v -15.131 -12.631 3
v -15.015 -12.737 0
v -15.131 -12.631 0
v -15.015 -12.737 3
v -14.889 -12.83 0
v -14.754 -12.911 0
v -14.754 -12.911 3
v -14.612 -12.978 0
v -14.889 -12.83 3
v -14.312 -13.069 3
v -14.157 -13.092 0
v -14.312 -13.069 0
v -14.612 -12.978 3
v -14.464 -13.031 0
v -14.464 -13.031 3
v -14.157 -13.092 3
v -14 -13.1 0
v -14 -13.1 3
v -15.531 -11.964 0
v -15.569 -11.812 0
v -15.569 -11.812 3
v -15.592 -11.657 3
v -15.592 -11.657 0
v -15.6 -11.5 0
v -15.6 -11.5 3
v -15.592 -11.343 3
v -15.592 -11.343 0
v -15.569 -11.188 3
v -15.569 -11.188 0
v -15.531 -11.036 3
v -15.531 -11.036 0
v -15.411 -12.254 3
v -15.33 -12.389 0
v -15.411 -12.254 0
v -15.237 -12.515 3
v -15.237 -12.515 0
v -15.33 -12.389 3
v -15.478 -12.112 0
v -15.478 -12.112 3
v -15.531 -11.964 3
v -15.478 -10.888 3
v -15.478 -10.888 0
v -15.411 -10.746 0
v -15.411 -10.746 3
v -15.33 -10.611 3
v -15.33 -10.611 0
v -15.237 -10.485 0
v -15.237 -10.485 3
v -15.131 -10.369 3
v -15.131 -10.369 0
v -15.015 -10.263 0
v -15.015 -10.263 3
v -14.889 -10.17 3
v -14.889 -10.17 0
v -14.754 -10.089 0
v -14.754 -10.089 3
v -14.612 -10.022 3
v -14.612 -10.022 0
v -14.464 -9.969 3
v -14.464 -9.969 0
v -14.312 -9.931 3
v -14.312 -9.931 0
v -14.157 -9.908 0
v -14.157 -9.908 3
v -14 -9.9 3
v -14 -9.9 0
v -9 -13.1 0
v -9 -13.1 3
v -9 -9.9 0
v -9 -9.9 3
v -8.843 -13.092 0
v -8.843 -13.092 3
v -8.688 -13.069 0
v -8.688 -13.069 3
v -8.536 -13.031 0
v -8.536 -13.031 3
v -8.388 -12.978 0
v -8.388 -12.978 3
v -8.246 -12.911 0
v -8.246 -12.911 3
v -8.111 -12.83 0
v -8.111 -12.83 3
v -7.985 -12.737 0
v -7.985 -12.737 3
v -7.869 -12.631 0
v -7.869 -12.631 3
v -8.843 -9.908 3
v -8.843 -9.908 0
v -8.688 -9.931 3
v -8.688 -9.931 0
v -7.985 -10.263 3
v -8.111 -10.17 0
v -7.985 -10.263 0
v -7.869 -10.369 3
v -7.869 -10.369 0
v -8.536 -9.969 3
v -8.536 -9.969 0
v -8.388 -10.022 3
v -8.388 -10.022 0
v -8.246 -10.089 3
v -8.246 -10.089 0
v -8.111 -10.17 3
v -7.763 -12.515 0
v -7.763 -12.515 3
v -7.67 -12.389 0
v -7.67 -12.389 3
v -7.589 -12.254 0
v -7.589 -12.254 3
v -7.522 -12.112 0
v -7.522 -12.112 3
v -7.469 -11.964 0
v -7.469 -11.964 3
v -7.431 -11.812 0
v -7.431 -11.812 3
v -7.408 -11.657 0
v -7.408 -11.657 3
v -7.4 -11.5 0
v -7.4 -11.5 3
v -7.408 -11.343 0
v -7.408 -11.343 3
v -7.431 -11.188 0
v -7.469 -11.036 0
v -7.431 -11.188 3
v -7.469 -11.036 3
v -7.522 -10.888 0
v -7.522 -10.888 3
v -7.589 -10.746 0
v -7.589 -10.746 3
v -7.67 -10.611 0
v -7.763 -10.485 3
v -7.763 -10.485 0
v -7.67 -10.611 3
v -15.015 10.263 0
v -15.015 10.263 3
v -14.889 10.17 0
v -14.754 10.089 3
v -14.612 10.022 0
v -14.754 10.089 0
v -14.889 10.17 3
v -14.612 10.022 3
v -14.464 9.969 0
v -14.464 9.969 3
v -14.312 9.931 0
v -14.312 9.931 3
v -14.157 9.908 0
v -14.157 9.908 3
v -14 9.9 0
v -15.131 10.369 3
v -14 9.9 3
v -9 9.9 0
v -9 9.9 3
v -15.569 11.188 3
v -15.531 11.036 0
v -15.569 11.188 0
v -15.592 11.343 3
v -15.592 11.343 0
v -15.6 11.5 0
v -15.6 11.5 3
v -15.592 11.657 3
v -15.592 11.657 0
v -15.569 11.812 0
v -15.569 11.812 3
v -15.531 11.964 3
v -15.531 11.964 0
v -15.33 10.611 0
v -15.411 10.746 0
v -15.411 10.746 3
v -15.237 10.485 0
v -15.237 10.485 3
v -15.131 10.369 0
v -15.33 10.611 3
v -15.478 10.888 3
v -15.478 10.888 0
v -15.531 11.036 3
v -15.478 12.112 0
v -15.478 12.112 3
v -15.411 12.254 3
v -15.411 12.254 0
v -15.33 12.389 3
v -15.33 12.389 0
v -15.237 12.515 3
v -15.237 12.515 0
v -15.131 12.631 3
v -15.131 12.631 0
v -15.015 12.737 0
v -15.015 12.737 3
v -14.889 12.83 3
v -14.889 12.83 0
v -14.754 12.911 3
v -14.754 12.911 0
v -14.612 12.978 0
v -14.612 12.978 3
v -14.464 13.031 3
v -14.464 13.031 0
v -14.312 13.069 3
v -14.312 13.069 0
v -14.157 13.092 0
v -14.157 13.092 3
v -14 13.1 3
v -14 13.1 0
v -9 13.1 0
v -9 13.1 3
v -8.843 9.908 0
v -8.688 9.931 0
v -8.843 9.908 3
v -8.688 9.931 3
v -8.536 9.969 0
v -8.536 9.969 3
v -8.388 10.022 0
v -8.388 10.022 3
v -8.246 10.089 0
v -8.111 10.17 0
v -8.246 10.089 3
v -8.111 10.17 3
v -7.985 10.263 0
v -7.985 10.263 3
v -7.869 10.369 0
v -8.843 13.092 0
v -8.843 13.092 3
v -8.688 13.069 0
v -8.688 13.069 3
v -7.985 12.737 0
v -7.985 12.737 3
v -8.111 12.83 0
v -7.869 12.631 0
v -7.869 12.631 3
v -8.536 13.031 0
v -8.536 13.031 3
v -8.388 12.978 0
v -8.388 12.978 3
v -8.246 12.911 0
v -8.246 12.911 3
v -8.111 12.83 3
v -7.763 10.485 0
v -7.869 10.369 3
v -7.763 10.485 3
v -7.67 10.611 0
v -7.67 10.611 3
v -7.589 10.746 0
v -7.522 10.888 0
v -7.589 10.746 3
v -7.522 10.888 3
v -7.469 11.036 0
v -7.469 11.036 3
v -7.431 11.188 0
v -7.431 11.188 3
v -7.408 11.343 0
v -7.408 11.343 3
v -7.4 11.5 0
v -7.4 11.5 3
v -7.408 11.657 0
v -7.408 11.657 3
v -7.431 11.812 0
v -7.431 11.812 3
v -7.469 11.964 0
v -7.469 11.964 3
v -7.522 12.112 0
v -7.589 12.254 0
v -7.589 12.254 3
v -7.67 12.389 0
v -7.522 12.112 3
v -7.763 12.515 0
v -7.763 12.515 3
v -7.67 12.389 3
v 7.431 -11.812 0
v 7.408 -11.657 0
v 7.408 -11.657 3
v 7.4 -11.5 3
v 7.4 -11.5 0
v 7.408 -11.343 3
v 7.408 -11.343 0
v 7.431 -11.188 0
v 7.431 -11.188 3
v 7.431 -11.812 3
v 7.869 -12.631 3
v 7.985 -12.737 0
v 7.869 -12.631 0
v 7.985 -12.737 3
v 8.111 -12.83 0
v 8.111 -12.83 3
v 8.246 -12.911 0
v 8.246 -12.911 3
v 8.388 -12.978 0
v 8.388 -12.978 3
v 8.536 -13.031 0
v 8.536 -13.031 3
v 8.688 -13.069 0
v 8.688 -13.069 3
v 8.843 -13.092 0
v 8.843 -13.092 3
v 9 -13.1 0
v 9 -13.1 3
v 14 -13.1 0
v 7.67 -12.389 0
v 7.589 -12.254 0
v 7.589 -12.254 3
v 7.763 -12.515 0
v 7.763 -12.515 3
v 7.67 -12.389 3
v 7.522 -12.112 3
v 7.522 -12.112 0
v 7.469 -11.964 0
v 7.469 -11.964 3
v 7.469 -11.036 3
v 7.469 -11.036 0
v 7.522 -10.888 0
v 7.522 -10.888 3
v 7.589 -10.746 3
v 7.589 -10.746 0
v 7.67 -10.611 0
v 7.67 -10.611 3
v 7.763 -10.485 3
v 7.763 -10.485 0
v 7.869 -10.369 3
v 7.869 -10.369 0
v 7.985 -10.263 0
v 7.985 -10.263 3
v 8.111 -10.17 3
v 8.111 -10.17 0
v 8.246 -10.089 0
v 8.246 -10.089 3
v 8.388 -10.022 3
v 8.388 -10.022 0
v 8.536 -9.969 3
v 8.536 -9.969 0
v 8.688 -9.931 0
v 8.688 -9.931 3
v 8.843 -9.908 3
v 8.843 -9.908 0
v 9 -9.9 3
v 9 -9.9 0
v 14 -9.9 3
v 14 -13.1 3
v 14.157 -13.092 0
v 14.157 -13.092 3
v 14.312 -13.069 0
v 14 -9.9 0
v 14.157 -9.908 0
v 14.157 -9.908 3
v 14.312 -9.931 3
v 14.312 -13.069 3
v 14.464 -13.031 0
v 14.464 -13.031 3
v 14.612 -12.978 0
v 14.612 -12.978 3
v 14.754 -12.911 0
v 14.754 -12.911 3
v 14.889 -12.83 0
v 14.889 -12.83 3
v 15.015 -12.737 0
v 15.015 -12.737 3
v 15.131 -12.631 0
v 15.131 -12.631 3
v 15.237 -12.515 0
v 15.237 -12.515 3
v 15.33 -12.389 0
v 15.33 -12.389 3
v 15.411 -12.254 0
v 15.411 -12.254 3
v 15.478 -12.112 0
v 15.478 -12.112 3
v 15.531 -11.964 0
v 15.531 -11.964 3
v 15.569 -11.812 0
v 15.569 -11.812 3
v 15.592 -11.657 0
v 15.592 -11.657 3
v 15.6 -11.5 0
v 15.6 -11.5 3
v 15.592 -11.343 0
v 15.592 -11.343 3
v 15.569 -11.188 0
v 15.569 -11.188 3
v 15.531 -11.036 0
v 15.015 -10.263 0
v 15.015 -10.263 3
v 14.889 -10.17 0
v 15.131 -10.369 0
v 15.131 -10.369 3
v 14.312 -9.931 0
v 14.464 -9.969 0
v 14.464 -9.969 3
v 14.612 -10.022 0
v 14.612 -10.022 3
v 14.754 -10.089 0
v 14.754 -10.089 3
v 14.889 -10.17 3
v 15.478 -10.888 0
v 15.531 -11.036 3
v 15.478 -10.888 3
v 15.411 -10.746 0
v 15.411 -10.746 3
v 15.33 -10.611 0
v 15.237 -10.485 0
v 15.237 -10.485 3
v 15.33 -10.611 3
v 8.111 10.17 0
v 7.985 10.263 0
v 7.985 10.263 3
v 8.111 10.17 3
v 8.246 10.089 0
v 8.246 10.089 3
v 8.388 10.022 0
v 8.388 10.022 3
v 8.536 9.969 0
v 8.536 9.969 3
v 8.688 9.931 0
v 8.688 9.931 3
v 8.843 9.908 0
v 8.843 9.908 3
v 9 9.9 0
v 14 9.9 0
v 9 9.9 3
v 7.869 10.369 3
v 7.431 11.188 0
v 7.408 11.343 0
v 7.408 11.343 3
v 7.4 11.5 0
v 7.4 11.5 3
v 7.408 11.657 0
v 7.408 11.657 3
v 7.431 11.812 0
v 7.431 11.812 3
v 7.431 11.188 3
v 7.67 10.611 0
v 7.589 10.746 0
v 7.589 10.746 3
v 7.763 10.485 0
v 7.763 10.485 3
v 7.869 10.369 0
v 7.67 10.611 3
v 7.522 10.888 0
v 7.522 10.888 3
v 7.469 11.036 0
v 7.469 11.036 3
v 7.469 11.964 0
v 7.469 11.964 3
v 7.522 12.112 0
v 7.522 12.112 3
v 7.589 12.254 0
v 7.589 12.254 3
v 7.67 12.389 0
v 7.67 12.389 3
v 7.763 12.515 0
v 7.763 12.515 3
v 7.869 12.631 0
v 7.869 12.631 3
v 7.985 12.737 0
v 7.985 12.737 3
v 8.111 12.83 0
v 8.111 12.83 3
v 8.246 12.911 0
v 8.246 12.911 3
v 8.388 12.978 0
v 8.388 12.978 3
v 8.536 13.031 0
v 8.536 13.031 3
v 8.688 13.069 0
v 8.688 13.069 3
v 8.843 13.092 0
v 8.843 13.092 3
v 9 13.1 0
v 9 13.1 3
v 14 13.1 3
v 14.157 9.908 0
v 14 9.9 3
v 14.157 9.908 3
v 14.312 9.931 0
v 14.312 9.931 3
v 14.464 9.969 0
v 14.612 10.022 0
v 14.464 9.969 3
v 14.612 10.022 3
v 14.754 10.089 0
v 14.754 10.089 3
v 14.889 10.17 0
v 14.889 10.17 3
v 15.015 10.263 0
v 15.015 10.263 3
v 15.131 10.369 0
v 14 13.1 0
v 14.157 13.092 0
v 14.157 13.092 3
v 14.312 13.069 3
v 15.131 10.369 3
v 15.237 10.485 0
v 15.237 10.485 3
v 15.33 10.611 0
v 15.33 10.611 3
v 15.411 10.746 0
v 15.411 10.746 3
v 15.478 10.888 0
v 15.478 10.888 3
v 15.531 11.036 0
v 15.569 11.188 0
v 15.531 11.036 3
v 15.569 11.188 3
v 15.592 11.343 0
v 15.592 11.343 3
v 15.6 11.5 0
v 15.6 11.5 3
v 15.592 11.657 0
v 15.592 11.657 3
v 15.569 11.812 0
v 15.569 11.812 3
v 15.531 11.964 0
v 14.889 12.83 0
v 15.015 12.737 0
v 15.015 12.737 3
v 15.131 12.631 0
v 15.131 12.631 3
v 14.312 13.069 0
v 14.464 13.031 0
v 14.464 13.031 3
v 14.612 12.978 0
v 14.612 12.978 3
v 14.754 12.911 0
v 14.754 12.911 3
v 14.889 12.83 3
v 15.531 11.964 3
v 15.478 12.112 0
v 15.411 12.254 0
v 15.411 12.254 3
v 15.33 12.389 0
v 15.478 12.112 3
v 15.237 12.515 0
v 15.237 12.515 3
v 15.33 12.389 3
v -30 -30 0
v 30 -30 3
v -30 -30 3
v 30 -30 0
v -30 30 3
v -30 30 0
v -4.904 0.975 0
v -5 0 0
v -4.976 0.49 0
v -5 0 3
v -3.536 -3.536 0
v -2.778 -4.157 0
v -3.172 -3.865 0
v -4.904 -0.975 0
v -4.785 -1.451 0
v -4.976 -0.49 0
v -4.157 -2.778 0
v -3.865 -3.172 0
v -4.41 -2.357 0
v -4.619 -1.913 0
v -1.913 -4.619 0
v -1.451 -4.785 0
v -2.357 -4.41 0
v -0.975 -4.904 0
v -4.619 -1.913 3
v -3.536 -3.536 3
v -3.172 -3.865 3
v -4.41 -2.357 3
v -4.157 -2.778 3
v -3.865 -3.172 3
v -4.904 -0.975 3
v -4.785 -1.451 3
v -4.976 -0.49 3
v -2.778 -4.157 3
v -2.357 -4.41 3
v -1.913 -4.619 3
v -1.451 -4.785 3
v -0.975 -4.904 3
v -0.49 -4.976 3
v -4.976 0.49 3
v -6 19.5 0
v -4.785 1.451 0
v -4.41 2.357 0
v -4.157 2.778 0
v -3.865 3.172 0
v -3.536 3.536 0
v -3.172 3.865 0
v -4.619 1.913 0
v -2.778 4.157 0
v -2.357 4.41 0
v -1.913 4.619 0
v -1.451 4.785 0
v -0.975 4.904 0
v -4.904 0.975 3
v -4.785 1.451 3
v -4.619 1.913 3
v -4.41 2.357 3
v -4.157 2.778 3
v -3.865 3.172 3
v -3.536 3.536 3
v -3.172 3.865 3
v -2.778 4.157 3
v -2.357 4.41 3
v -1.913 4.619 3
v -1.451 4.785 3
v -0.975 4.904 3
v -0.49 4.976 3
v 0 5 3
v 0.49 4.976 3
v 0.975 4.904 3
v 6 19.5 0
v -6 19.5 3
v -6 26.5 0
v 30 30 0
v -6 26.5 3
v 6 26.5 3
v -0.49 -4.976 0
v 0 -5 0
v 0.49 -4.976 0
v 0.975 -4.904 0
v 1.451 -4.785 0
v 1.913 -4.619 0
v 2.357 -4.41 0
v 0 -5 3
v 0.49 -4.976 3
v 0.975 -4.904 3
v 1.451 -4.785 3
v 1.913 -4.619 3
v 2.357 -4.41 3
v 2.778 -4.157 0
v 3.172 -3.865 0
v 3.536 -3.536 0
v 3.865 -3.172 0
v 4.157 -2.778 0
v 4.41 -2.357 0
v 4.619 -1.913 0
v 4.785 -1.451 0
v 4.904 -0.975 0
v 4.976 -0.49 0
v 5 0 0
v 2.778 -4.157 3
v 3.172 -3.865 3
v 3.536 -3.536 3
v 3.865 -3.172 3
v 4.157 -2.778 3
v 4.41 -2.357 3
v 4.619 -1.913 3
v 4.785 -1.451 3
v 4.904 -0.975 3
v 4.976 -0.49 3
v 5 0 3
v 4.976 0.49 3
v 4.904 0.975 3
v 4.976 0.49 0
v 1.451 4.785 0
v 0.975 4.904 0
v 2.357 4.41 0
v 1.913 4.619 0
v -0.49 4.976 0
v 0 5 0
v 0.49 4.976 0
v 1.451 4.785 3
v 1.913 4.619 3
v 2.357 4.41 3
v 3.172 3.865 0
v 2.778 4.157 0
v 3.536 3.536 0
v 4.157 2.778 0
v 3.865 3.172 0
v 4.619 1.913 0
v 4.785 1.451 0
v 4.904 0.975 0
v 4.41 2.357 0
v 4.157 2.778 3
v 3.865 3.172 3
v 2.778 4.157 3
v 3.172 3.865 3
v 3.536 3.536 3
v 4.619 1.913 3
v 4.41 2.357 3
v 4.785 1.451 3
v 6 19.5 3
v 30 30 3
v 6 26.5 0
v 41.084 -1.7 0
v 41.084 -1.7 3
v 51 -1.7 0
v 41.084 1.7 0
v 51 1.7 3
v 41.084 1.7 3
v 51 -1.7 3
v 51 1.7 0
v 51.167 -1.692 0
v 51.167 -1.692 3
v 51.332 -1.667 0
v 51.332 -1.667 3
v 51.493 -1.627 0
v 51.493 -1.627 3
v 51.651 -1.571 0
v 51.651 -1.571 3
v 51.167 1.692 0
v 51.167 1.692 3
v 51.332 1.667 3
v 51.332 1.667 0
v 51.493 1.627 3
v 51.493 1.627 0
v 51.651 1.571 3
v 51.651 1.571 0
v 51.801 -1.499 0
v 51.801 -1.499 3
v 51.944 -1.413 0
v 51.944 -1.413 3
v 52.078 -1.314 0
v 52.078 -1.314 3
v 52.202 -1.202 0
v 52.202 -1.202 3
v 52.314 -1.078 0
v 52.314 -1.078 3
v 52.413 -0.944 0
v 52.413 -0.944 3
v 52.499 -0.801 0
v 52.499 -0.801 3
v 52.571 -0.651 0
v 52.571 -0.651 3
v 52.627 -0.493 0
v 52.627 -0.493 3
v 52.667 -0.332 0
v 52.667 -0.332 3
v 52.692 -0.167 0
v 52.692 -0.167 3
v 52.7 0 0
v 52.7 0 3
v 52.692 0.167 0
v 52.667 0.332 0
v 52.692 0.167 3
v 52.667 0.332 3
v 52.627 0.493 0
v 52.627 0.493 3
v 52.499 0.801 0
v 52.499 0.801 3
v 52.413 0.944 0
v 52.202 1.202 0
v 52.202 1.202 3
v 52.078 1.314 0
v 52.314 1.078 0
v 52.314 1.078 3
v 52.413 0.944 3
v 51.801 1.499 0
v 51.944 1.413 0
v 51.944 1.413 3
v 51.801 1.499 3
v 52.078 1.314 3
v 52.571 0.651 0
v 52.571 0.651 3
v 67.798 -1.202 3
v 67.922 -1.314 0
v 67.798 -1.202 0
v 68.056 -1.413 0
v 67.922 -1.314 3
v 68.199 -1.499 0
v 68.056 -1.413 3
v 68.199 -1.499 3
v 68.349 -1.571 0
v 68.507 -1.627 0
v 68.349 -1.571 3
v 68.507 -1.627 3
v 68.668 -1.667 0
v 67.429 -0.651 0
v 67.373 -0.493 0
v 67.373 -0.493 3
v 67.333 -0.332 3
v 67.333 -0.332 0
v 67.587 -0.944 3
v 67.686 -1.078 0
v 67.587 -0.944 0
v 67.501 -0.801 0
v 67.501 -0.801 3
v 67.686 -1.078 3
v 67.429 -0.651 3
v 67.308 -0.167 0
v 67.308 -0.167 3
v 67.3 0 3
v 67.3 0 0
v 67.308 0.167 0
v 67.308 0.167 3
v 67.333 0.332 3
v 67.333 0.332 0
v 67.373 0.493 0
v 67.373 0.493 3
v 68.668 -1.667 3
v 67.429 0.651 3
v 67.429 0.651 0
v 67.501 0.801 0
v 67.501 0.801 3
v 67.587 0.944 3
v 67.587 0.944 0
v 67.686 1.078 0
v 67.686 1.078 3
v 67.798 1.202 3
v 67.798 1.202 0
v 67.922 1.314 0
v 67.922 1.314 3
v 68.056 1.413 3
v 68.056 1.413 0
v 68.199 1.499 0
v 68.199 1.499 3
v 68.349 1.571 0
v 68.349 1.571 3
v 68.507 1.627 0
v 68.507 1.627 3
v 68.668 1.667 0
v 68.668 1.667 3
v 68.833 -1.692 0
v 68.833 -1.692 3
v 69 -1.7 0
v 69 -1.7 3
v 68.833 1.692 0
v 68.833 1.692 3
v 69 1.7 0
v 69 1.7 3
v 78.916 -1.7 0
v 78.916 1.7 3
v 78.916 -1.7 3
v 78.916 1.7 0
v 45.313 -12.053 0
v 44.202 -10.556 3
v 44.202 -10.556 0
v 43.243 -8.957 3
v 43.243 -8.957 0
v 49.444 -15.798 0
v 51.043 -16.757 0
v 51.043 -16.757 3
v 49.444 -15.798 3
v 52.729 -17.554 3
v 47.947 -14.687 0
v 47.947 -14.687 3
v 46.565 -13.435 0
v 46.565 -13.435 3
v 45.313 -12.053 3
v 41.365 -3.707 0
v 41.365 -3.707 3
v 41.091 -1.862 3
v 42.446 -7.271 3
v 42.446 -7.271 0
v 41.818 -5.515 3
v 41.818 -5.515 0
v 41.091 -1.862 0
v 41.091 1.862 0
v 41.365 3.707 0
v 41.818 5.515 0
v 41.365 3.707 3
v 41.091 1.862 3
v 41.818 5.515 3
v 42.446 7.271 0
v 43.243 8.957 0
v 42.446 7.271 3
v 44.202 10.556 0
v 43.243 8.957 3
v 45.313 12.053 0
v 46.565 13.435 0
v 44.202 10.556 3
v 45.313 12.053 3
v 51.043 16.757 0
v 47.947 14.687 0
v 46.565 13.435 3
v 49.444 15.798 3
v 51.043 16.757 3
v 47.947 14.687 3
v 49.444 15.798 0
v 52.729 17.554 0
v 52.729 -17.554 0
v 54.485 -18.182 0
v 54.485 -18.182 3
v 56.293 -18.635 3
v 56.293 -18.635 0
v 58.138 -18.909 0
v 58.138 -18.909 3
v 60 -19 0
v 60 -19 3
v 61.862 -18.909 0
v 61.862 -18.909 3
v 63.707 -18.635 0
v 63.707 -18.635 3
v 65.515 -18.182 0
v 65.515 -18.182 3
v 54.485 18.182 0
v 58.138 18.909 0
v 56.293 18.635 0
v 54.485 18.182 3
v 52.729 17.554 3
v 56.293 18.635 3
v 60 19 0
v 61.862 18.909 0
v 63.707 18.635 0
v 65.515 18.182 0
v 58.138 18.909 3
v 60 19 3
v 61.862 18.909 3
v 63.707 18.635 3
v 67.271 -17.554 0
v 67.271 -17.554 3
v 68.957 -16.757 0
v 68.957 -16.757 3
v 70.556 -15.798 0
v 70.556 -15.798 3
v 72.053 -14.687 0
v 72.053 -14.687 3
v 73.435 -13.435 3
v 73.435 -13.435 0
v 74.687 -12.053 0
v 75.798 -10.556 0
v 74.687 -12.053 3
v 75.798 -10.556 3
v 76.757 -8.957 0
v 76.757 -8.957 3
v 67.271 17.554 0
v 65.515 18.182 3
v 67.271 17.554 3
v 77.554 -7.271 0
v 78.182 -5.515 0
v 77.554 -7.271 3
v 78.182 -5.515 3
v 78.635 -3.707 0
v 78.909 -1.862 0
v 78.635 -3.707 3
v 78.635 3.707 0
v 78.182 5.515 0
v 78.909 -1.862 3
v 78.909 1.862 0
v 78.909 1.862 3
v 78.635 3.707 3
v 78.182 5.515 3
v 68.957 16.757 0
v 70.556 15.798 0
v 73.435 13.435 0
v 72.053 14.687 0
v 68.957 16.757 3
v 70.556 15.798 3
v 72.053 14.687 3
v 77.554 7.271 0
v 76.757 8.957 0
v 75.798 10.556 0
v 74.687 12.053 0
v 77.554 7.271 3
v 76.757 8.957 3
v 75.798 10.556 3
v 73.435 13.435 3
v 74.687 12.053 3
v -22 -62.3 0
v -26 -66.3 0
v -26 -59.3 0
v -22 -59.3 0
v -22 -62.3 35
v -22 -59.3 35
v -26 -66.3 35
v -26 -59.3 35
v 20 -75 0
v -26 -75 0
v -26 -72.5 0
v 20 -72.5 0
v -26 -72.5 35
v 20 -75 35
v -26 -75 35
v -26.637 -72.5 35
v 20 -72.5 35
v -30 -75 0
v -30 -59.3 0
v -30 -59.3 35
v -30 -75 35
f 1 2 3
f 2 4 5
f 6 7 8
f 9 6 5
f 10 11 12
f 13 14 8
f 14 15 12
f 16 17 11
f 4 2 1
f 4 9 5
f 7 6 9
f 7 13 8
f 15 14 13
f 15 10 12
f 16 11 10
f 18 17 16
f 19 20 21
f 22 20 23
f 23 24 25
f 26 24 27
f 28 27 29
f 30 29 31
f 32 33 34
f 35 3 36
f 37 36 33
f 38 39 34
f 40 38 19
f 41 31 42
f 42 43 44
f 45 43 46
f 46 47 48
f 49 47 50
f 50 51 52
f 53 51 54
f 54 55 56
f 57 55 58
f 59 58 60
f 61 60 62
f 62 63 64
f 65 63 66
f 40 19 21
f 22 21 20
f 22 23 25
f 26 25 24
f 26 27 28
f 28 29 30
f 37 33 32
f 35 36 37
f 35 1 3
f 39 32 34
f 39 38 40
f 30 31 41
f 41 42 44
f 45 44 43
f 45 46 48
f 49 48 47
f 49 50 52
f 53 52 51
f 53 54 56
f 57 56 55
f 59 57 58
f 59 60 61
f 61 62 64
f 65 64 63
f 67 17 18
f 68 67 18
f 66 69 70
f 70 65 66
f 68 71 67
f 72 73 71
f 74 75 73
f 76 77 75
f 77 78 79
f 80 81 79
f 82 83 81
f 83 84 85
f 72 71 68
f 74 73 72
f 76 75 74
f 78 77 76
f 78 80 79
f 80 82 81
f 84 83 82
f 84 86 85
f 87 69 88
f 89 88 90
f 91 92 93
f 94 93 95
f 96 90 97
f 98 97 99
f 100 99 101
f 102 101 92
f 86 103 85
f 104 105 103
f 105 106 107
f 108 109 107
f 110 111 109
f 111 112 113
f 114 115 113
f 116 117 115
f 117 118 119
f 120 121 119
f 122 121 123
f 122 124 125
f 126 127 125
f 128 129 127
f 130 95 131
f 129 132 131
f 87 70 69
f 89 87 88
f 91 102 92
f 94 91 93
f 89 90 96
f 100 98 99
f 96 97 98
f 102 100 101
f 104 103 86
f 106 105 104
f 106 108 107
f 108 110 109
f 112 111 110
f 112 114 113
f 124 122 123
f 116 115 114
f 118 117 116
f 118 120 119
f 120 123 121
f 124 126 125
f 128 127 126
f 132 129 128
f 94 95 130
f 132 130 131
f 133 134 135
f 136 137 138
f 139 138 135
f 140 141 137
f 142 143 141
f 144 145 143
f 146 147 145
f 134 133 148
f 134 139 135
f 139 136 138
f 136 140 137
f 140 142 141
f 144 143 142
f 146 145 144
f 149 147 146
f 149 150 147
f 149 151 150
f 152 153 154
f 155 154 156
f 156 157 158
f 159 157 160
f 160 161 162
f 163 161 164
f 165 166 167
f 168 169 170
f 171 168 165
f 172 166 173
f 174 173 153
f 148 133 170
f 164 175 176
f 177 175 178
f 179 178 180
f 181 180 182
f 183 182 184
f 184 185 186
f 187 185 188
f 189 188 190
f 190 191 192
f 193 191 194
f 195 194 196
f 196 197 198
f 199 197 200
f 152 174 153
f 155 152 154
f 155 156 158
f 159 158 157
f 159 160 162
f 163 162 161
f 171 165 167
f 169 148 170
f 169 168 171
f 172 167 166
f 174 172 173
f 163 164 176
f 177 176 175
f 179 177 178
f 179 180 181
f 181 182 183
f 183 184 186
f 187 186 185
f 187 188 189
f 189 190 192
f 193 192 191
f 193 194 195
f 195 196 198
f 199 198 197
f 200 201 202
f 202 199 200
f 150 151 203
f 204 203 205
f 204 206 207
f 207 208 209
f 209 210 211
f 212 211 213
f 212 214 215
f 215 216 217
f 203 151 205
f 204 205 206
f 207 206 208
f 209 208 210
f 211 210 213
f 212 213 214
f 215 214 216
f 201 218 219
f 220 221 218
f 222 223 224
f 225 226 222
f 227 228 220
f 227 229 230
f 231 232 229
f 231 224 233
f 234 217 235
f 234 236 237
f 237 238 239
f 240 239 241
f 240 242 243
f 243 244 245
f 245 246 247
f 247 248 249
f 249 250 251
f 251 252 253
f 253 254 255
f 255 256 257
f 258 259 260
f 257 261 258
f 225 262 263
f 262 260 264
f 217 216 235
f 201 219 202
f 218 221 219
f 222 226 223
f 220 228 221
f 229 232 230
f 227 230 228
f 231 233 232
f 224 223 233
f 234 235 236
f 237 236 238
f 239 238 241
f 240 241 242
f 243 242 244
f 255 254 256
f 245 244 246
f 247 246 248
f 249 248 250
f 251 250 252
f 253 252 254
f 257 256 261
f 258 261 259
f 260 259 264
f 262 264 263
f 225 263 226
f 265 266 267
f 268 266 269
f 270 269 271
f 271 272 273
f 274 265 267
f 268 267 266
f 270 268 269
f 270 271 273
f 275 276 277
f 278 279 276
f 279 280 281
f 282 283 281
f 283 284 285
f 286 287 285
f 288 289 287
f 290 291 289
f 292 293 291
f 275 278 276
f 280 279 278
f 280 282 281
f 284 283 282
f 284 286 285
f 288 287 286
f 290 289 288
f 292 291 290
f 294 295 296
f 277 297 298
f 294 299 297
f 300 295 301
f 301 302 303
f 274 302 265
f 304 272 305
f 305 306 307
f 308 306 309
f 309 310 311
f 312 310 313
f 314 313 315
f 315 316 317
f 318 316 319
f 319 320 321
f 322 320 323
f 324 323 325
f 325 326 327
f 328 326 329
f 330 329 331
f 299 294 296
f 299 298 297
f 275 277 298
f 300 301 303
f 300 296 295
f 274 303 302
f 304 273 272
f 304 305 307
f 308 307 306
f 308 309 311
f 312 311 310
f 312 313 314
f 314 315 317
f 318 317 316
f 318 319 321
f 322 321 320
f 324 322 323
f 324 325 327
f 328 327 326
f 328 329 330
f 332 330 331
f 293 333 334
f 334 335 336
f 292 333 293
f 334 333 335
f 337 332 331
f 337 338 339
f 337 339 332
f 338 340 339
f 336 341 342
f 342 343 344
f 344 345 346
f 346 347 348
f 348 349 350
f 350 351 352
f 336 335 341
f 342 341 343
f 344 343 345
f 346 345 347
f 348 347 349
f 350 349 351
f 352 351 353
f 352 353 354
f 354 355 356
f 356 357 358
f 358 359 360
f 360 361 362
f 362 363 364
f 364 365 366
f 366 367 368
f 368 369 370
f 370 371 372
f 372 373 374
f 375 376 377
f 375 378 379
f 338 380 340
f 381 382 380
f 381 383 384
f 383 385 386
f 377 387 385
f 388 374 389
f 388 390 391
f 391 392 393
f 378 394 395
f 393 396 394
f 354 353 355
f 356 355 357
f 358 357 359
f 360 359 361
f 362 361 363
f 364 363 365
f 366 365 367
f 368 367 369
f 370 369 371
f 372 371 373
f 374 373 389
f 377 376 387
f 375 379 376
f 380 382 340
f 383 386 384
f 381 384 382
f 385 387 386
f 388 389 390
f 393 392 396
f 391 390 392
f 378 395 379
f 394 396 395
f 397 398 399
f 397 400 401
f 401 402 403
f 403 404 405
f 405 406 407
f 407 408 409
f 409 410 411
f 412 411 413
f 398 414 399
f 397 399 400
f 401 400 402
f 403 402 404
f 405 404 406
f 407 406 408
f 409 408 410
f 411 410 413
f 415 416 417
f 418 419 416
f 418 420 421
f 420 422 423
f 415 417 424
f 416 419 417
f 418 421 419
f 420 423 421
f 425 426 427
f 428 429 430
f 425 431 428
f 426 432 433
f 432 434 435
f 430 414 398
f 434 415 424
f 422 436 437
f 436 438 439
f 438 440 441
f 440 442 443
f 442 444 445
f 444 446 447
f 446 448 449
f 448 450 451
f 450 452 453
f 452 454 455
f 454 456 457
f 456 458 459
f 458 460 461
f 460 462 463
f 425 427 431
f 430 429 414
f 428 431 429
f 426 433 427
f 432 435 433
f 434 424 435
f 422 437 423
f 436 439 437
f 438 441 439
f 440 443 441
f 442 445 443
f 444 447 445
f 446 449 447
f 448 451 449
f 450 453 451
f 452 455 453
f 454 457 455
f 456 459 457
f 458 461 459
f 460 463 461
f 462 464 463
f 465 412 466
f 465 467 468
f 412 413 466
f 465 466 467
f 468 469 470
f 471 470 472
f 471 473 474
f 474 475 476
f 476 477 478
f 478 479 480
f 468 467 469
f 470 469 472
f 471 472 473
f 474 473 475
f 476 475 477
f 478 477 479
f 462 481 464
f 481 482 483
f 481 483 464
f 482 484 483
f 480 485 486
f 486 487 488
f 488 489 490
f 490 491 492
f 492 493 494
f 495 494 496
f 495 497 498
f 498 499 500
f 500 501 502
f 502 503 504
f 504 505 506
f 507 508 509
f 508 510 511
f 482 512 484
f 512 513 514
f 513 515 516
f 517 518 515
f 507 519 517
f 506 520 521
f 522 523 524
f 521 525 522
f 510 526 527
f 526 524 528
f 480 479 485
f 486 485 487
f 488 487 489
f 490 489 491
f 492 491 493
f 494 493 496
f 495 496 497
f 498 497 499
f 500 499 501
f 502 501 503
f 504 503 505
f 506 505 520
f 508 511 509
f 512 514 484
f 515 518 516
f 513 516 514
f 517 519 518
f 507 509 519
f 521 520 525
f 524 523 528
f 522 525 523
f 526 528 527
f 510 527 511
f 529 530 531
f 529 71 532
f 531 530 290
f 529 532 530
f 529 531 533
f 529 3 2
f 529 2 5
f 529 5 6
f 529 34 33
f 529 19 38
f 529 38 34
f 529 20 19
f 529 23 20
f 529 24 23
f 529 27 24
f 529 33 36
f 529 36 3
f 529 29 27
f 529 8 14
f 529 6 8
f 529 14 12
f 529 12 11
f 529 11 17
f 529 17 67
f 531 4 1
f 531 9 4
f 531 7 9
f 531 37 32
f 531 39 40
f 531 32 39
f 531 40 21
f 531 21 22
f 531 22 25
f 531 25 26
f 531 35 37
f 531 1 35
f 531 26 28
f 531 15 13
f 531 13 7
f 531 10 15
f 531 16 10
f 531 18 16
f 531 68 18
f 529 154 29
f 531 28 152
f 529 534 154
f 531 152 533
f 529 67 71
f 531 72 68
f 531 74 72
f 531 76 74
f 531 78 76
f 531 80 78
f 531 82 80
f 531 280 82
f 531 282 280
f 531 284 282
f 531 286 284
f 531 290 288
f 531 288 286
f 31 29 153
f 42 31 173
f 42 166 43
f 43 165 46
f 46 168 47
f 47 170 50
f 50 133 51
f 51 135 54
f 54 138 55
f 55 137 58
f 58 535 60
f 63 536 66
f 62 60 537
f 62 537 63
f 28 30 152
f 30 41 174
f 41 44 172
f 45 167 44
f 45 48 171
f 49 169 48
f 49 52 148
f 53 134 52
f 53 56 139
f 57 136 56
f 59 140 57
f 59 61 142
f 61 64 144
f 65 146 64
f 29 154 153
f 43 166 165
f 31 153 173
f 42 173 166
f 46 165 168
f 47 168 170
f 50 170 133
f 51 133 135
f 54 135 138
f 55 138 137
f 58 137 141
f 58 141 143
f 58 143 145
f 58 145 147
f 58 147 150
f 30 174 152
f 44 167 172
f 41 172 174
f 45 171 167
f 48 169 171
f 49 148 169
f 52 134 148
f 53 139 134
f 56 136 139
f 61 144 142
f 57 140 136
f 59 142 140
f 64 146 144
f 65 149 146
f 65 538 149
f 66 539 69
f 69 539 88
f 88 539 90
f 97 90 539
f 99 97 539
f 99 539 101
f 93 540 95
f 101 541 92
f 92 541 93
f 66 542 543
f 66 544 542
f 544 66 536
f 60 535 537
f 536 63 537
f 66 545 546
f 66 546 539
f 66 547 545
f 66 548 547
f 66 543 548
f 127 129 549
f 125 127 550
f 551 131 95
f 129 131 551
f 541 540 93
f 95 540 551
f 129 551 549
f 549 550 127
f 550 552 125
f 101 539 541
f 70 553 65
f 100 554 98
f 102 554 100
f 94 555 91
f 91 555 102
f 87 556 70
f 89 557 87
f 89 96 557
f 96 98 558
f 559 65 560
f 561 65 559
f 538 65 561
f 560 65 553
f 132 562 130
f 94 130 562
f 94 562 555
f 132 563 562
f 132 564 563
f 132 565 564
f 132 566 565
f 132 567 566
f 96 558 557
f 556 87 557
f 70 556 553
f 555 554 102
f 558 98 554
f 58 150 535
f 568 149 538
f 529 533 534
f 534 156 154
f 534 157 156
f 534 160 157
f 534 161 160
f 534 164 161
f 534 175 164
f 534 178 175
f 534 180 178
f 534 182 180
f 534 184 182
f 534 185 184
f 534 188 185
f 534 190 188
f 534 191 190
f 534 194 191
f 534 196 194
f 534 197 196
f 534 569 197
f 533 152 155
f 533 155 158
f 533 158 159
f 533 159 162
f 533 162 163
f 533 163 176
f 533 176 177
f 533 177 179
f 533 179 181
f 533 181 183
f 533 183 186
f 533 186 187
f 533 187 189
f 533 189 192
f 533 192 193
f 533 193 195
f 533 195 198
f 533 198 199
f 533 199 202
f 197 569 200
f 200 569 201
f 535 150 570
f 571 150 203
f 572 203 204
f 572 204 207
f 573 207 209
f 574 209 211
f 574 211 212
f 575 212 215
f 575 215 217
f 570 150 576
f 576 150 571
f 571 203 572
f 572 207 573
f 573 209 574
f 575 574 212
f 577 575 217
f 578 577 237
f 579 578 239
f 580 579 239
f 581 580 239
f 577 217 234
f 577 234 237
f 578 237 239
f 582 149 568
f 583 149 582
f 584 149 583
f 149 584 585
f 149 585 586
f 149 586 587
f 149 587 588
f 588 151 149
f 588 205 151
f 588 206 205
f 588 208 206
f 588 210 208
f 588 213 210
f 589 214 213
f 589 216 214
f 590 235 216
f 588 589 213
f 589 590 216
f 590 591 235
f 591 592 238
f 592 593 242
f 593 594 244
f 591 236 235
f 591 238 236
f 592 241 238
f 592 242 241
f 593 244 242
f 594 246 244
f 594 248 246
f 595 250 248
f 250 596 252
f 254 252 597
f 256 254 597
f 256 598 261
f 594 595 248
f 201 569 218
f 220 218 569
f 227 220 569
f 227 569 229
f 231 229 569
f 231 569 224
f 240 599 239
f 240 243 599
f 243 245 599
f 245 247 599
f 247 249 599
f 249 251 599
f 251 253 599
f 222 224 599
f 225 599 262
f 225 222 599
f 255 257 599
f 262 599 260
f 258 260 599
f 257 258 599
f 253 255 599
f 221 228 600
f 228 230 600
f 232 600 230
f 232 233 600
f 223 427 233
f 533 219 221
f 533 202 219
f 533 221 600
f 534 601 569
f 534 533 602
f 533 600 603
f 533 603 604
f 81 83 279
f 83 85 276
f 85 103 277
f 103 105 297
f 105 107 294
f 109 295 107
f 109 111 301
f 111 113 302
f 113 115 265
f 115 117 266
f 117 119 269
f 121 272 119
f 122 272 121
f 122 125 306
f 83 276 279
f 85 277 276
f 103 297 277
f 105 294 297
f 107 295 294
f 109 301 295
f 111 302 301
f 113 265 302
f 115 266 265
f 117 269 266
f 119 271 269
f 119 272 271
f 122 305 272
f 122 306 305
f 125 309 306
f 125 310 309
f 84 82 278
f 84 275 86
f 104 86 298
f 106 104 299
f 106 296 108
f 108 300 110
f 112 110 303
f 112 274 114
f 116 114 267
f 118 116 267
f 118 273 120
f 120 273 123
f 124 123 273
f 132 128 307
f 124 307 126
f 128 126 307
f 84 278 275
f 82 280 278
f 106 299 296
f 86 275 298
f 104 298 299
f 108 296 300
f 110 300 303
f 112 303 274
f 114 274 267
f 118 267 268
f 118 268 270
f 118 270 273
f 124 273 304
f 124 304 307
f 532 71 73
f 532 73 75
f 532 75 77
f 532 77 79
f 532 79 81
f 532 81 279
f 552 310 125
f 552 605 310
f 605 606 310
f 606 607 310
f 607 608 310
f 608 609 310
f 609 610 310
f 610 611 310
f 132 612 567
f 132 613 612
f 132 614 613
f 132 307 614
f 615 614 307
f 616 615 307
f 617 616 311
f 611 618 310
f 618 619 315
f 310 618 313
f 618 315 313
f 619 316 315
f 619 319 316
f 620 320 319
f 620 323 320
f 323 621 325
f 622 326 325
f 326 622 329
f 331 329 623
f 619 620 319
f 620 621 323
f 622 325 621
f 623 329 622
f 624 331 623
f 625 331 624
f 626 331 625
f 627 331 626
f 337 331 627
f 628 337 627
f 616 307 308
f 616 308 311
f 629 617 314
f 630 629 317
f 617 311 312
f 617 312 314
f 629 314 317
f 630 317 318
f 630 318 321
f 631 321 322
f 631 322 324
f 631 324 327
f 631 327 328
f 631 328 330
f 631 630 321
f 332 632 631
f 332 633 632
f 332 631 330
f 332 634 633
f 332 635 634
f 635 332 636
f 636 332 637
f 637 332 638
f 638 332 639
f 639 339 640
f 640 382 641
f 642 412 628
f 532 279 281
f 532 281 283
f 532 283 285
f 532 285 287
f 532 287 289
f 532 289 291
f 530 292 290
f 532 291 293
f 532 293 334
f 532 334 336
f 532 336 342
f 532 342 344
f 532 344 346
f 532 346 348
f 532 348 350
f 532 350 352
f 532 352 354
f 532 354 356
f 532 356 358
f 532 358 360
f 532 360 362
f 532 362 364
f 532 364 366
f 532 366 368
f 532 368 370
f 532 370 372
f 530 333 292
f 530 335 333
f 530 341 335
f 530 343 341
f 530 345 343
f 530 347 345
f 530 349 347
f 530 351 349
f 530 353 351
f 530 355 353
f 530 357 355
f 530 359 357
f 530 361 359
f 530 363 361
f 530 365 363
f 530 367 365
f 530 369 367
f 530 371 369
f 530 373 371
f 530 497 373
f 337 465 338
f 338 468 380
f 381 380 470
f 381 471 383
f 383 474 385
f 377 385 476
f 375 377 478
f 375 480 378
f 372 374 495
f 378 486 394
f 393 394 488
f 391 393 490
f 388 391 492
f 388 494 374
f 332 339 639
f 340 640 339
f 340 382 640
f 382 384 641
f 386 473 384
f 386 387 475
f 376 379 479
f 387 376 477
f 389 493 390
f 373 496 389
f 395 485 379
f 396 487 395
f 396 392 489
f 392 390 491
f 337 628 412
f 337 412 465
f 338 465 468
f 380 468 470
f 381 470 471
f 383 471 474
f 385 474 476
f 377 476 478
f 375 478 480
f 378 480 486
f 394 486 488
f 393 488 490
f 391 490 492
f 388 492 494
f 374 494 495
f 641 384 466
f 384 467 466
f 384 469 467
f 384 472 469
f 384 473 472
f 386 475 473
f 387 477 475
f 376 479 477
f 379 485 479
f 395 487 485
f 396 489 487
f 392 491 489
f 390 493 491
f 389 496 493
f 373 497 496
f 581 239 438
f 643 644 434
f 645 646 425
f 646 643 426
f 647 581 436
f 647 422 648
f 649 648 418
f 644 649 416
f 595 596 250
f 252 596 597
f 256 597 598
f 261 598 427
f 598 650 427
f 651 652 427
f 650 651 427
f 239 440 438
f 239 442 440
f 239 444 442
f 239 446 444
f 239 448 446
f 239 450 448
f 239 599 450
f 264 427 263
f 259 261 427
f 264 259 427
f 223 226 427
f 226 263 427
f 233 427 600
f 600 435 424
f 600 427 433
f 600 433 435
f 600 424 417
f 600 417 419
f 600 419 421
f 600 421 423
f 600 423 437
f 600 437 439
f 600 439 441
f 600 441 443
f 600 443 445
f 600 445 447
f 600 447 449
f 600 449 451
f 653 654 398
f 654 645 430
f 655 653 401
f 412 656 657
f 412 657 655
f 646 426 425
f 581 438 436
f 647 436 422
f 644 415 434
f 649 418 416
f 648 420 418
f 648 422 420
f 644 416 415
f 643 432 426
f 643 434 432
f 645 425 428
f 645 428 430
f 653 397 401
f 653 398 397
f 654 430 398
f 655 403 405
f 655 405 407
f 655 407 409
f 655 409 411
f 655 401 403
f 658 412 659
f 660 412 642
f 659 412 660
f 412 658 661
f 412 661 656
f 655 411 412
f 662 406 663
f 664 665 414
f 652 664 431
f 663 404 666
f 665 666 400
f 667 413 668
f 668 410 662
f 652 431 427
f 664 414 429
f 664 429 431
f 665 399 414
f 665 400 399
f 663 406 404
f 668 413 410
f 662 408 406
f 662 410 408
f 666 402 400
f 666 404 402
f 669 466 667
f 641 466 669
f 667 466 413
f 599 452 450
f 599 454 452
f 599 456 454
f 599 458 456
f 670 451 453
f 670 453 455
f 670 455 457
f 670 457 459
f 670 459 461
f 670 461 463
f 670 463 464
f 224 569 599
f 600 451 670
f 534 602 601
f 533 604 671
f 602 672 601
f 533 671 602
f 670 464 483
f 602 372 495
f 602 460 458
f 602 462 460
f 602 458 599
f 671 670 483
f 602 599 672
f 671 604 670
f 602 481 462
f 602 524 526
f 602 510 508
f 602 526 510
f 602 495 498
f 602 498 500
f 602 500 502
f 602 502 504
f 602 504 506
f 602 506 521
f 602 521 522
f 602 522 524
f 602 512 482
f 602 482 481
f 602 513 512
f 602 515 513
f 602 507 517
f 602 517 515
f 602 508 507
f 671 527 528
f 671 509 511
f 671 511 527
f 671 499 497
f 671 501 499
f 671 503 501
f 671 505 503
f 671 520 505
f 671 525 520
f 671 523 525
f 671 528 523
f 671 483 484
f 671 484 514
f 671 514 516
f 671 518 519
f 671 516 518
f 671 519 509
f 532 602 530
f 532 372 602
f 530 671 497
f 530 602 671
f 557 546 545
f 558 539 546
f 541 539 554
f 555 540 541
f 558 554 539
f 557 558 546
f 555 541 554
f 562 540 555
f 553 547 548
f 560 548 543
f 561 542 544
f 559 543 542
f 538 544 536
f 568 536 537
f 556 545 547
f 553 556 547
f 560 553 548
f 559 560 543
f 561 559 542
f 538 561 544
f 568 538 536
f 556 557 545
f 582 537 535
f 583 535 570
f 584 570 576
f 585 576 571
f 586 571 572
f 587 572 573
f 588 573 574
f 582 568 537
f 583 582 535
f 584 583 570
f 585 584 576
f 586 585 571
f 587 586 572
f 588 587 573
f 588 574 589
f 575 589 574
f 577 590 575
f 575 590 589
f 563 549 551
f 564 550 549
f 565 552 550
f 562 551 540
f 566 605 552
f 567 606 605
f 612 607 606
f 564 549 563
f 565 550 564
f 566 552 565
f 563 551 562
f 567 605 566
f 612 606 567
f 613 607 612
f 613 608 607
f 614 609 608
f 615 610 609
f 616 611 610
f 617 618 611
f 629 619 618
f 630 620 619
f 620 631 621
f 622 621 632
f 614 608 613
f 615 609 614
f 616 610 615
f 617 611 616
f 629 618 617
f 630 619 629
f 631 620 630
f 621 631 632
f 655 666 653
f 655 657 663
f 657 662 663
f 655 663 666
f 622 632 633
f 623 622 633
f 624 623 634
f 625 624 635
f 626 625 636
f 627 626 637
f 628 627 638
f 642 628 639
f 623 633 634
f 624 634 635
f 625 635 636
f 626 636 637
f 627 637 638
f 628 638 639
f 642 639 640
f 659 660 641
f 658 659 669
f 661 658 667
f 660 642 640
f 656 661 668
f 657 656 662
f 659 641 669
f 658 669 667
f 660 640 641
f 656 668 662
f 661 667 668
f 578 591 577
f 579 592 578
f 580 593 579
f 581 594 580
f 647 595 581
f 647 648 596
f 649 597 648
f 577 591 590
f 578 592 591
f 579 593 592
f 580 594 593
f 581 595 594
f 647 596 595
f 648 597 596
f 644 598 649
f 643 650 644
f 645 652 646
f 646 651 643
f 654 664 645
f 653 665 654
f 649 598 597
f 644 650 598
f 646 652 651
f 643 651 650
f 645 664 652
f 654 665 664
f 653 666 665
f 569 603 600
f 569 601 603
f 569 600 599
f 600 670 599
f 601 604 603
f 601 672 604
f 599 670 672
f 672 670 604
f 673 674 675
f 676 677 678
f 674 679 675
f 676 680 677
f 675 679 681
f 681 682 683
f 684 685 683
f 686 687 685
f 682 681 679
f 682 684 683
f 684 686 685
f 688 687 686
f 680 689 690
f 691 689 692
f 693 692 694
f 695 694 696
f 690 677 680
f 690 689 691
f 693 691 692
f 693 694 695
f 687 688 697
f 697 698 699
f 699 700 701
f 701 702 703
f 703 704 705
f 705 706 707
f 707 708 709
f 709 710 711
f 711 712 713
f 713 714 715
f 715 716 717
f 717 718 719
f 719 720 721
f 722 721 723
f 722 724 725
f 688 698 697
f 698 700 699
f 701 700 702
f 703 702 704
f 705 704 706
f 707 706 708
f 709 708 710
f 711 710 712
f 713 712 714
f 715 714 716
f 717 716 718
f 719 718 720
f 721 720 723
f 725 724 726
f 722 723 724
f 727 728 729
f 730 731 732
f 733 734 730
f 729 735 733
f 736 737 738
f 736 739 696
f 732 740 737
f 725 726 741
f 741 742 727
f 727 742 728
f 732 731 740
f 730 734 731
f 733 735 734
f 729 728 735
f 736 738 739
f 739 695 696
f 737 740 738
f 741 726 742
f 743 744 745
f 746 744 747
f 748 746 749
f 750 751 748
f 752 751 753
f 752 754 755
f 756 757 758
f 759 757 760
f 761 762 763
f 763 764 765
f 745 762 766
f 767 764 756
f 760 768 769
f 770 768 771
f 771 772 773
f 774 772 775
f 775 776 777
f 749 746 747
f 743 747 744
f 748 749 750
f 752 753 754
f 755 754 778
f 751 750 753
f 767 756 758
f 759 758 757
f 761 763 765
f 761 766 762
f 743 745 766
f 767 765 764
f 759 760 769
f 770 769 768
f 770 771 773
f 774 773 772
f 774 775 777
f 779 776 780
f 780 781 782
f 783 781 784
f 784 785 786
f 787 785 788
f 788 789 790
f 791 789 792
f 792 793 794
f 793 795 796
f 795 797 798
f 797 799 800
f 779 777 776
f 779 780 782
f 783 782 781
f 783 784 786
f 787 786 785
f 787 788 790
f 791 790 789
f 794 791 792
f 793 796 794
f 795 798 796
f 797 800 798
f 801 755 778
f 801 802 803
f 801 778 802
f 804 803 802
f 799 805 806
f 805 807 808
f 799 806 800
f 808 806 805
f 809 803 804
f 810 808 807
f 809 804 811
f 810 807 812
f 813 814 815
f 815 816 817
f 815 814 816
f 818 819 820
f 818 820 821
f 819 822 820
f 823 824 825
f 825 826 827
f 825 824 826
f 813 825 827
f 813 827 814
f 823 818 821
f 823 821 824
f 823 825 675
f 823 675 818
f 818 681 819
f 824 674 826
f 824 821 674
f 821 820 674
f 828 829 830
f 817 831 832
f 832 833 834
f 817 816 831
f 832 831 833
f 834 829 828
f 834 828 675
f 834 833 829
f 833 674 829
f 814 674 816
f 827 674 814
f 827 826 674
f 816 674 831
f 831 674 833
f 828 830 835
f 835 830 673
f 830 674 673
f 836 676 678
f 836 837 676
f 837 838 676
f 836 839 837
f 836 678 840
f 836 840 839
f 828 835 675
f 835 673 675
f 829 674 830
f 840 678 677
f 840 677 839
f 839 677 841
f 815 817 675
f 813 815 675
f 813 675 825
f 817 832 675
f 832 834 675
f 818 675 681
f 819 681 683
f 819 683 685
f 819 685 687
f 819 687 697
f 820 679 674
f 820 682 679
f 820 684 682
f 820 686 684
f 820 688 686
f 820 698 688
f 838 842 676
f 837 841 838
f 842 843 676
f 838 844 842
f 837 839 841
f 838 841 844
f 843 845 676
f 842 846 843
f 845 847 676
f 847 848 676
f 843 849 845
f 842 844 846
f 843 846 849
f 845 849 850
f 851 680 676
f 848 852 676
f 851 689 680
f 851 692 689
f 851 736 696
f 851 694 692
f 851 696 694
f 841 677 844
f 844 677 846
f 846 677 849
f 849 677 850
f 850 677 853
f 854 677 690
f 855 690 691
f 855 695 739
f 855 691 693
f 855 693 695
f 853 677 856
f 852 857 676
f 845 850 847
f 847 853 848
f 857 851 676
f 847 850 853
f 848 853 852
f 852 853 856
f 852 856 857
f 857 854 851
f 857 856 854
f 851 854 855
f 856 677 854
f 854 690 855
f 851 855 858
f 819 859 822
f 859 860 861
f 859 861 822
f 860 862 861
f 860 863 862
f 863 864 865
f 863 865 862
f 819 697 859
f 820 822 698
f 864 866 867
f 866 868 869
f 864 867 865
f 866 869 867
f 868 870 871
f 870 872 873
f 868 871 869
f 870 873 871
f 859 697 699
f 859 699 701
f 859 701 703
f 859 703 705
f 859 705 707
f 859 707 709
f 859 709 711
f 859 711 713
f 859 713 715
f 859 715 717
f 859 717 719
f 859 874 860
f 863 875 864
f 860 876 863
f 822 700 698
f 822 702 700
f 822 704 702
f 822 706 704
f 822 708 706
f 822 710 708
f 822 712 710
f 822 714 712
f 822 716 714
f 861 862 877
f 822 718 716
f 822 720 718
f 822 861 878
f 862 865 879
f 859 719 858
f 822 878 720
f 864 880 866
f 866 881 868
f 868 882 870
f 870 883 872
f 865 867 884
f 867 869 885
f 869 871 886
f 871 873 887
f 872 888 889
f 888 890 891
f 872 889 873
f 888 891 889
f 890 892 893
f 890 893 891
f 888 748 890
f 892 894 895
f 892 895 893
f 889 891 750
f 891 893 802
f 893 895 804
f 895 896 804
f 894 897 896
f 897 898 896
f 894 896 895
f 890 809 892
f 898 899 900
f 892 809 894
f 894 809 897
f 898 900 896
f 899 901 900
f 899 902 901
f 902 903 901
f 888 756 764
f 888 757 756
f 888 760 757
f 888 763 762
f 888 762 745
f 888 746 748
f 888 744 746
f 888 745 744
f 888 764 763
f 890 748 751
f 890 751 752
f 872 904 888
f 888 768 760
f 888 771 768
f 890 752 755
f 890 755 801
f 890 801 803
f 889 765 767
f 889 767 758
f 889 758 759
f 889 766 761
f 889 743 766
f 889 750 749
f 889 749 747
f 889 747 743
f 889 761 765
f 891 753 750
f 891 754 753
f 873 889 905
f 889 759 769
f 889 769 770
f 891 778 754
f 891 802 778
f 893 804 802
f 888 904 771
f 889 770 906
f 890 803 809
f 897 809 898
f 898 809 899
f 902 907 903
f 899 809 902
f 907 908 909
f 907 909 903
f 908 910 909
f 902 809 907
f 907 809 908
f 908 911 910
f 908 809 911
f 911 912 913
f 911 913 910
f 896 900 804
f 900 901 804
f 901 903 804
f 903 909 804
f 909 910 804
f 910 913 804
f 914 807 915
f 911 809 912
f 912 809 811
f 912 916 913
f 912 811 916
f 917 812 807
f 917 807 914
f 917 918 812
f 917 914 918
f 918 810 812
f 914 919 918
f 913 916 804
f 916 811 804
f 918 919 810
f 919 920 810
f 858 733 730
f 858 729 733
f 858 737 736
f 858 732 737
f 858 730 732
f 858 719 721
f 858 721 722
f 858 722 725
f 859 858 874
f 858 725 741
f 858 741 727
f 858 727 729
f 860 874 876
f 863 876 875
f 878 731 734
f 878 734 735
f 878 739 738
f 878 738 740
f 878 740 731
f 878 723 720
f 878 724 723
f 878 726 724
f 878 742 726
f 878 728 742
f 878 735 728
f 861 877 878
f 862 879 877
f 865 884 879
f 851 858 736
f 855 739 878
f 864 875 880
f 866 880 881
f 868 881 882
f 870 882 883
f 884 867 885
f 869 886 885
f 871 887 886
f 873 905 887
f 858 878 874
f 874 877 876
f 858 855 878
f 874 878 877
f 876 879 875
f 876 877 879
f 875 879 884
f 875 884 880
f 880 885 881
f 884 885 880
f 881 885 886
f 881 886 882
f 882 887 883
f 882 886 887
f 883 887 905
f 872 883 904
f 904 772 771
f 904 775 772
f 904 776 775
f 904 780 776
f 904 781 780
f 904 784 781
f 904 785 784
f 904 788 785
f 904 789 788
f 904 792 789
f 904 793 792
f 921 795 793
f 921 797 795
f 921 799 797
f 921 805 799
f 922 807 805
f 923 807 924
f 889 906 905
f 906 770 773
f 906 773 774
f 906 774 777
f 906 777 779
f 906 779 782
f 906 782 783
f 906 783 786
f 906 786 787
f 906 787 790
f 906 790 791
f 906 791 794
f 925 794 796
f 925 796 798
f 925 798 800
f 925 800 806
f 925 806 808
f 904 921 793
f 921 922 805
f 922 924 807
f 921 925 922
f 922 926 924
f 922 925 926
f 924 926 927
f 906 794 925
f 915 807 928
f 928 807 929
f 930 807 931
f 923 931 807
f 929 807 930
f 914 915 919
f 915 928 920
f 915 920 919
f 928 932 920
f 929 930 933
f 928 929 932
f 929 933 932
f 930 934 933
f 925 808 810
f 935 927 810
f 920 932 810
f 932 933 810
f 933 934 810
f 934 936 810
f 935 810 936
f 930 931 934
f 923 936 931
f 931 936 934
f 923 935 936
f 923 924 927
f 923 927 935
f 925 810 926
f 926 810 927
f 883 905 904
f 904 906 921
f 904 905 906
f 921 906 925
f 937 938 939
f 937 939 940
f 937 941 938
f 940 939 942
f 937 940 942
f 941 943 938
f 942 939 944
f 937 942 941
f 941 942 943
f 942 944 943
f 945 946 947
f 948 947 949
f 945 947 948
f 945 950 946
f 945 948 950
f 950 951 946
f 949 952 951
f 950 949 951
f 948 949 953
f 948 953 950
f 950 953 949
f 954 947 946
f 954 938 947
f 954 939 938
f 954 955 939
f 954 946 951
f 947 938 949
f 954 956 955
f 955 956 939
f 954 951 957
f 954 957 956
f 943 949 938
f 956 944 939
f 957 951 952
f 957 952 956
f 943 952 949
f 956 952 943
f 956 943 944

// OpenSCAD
// file: params.scad
// Lanterna do Olho — parâmetros comuns (mm)
L = 150;      // comprimento externo (x)
W = 100;      // largura externa (y)
H = 80;       // altura externa (z)
wall = 2.0;   // parede
floor_t = 2.4;
rc = 5;       // raio dos cantos
dowel_d = 20.6;   // furo do cabo (dowel de 20 mm + folga). Cabo de vassoura: mede e troca.
socket_h = 35;    // altura do soquete do cabo dentro da caixa
lid_lip = 1.6;    // aba interna da tampa
lid_t = 3;
$fn = 64;
module rbox(l, w, h, r) { hull() for (x=[-1,1], y=[-1,1]) translate([x*(l/2-r), y*(w/2-r), 0]) cylinder(r=r, h=h); }
// main file
include <params.scad>
// PEÇA DE TESTE (12 min): confere os encaixes antes das impressões longas.
// A) placa 60x60x3 com os 4 rasgos da tampa + alívio central  -> parafusa a base do pan-tilt nela
// B) disco 38 mm igual à base do olho, com os 2 rasgos          -> parafusa na placa vertical do pan-tilt
// C) pedaço de 35 mm do canal do celular (trilho fixo + chapa)  -> desliza a lateral do celular nele
pt = 23; ph_t = 9; slot_t = ph_t + 1.2;
// A
difference() {
  translate([-30,-30,0]) cube([60,60,3]);
  for (sx=[-1,1], sy=[-1,1]) hull() { translate([sx*(pt/2-2.5), sy*(pt/2), -1]) cylinder(d=3.2,h=5); translate([sx*(pt/2+2.5), sy*(pt/2), -1]) cylinder(d=3.2,h=5); }
  translate([0,0,-1]) cylinder(d=10,h=5);
  translate([-6, pt/2+8, -1]) cube([12,7,5]);
}
// B
translate([60,0,0]) difference() { cylinder(d=38,h=3); for (x=[-14.5,14.5]) hull(){ translate([x-5.5,0,-1]) cylinder(d=3.4,h=5); translate([x+5.5,0,-1]) cylinder(d=3.4,h=5);} }
// C: chapa + trilho + aba, 35 mm de altura, deitado (como o berço imprime)
translate([-30,-75,0]) { cube([50,2.5,35]); cube([4, 2.5+slot_t+3, 35]); hull(){ translate([4,2.5+slot_t,0]) cube([4,3,35]); translate([3.99,2.5+slot_t-4,0]) cube([0.01,7,35]); } }
